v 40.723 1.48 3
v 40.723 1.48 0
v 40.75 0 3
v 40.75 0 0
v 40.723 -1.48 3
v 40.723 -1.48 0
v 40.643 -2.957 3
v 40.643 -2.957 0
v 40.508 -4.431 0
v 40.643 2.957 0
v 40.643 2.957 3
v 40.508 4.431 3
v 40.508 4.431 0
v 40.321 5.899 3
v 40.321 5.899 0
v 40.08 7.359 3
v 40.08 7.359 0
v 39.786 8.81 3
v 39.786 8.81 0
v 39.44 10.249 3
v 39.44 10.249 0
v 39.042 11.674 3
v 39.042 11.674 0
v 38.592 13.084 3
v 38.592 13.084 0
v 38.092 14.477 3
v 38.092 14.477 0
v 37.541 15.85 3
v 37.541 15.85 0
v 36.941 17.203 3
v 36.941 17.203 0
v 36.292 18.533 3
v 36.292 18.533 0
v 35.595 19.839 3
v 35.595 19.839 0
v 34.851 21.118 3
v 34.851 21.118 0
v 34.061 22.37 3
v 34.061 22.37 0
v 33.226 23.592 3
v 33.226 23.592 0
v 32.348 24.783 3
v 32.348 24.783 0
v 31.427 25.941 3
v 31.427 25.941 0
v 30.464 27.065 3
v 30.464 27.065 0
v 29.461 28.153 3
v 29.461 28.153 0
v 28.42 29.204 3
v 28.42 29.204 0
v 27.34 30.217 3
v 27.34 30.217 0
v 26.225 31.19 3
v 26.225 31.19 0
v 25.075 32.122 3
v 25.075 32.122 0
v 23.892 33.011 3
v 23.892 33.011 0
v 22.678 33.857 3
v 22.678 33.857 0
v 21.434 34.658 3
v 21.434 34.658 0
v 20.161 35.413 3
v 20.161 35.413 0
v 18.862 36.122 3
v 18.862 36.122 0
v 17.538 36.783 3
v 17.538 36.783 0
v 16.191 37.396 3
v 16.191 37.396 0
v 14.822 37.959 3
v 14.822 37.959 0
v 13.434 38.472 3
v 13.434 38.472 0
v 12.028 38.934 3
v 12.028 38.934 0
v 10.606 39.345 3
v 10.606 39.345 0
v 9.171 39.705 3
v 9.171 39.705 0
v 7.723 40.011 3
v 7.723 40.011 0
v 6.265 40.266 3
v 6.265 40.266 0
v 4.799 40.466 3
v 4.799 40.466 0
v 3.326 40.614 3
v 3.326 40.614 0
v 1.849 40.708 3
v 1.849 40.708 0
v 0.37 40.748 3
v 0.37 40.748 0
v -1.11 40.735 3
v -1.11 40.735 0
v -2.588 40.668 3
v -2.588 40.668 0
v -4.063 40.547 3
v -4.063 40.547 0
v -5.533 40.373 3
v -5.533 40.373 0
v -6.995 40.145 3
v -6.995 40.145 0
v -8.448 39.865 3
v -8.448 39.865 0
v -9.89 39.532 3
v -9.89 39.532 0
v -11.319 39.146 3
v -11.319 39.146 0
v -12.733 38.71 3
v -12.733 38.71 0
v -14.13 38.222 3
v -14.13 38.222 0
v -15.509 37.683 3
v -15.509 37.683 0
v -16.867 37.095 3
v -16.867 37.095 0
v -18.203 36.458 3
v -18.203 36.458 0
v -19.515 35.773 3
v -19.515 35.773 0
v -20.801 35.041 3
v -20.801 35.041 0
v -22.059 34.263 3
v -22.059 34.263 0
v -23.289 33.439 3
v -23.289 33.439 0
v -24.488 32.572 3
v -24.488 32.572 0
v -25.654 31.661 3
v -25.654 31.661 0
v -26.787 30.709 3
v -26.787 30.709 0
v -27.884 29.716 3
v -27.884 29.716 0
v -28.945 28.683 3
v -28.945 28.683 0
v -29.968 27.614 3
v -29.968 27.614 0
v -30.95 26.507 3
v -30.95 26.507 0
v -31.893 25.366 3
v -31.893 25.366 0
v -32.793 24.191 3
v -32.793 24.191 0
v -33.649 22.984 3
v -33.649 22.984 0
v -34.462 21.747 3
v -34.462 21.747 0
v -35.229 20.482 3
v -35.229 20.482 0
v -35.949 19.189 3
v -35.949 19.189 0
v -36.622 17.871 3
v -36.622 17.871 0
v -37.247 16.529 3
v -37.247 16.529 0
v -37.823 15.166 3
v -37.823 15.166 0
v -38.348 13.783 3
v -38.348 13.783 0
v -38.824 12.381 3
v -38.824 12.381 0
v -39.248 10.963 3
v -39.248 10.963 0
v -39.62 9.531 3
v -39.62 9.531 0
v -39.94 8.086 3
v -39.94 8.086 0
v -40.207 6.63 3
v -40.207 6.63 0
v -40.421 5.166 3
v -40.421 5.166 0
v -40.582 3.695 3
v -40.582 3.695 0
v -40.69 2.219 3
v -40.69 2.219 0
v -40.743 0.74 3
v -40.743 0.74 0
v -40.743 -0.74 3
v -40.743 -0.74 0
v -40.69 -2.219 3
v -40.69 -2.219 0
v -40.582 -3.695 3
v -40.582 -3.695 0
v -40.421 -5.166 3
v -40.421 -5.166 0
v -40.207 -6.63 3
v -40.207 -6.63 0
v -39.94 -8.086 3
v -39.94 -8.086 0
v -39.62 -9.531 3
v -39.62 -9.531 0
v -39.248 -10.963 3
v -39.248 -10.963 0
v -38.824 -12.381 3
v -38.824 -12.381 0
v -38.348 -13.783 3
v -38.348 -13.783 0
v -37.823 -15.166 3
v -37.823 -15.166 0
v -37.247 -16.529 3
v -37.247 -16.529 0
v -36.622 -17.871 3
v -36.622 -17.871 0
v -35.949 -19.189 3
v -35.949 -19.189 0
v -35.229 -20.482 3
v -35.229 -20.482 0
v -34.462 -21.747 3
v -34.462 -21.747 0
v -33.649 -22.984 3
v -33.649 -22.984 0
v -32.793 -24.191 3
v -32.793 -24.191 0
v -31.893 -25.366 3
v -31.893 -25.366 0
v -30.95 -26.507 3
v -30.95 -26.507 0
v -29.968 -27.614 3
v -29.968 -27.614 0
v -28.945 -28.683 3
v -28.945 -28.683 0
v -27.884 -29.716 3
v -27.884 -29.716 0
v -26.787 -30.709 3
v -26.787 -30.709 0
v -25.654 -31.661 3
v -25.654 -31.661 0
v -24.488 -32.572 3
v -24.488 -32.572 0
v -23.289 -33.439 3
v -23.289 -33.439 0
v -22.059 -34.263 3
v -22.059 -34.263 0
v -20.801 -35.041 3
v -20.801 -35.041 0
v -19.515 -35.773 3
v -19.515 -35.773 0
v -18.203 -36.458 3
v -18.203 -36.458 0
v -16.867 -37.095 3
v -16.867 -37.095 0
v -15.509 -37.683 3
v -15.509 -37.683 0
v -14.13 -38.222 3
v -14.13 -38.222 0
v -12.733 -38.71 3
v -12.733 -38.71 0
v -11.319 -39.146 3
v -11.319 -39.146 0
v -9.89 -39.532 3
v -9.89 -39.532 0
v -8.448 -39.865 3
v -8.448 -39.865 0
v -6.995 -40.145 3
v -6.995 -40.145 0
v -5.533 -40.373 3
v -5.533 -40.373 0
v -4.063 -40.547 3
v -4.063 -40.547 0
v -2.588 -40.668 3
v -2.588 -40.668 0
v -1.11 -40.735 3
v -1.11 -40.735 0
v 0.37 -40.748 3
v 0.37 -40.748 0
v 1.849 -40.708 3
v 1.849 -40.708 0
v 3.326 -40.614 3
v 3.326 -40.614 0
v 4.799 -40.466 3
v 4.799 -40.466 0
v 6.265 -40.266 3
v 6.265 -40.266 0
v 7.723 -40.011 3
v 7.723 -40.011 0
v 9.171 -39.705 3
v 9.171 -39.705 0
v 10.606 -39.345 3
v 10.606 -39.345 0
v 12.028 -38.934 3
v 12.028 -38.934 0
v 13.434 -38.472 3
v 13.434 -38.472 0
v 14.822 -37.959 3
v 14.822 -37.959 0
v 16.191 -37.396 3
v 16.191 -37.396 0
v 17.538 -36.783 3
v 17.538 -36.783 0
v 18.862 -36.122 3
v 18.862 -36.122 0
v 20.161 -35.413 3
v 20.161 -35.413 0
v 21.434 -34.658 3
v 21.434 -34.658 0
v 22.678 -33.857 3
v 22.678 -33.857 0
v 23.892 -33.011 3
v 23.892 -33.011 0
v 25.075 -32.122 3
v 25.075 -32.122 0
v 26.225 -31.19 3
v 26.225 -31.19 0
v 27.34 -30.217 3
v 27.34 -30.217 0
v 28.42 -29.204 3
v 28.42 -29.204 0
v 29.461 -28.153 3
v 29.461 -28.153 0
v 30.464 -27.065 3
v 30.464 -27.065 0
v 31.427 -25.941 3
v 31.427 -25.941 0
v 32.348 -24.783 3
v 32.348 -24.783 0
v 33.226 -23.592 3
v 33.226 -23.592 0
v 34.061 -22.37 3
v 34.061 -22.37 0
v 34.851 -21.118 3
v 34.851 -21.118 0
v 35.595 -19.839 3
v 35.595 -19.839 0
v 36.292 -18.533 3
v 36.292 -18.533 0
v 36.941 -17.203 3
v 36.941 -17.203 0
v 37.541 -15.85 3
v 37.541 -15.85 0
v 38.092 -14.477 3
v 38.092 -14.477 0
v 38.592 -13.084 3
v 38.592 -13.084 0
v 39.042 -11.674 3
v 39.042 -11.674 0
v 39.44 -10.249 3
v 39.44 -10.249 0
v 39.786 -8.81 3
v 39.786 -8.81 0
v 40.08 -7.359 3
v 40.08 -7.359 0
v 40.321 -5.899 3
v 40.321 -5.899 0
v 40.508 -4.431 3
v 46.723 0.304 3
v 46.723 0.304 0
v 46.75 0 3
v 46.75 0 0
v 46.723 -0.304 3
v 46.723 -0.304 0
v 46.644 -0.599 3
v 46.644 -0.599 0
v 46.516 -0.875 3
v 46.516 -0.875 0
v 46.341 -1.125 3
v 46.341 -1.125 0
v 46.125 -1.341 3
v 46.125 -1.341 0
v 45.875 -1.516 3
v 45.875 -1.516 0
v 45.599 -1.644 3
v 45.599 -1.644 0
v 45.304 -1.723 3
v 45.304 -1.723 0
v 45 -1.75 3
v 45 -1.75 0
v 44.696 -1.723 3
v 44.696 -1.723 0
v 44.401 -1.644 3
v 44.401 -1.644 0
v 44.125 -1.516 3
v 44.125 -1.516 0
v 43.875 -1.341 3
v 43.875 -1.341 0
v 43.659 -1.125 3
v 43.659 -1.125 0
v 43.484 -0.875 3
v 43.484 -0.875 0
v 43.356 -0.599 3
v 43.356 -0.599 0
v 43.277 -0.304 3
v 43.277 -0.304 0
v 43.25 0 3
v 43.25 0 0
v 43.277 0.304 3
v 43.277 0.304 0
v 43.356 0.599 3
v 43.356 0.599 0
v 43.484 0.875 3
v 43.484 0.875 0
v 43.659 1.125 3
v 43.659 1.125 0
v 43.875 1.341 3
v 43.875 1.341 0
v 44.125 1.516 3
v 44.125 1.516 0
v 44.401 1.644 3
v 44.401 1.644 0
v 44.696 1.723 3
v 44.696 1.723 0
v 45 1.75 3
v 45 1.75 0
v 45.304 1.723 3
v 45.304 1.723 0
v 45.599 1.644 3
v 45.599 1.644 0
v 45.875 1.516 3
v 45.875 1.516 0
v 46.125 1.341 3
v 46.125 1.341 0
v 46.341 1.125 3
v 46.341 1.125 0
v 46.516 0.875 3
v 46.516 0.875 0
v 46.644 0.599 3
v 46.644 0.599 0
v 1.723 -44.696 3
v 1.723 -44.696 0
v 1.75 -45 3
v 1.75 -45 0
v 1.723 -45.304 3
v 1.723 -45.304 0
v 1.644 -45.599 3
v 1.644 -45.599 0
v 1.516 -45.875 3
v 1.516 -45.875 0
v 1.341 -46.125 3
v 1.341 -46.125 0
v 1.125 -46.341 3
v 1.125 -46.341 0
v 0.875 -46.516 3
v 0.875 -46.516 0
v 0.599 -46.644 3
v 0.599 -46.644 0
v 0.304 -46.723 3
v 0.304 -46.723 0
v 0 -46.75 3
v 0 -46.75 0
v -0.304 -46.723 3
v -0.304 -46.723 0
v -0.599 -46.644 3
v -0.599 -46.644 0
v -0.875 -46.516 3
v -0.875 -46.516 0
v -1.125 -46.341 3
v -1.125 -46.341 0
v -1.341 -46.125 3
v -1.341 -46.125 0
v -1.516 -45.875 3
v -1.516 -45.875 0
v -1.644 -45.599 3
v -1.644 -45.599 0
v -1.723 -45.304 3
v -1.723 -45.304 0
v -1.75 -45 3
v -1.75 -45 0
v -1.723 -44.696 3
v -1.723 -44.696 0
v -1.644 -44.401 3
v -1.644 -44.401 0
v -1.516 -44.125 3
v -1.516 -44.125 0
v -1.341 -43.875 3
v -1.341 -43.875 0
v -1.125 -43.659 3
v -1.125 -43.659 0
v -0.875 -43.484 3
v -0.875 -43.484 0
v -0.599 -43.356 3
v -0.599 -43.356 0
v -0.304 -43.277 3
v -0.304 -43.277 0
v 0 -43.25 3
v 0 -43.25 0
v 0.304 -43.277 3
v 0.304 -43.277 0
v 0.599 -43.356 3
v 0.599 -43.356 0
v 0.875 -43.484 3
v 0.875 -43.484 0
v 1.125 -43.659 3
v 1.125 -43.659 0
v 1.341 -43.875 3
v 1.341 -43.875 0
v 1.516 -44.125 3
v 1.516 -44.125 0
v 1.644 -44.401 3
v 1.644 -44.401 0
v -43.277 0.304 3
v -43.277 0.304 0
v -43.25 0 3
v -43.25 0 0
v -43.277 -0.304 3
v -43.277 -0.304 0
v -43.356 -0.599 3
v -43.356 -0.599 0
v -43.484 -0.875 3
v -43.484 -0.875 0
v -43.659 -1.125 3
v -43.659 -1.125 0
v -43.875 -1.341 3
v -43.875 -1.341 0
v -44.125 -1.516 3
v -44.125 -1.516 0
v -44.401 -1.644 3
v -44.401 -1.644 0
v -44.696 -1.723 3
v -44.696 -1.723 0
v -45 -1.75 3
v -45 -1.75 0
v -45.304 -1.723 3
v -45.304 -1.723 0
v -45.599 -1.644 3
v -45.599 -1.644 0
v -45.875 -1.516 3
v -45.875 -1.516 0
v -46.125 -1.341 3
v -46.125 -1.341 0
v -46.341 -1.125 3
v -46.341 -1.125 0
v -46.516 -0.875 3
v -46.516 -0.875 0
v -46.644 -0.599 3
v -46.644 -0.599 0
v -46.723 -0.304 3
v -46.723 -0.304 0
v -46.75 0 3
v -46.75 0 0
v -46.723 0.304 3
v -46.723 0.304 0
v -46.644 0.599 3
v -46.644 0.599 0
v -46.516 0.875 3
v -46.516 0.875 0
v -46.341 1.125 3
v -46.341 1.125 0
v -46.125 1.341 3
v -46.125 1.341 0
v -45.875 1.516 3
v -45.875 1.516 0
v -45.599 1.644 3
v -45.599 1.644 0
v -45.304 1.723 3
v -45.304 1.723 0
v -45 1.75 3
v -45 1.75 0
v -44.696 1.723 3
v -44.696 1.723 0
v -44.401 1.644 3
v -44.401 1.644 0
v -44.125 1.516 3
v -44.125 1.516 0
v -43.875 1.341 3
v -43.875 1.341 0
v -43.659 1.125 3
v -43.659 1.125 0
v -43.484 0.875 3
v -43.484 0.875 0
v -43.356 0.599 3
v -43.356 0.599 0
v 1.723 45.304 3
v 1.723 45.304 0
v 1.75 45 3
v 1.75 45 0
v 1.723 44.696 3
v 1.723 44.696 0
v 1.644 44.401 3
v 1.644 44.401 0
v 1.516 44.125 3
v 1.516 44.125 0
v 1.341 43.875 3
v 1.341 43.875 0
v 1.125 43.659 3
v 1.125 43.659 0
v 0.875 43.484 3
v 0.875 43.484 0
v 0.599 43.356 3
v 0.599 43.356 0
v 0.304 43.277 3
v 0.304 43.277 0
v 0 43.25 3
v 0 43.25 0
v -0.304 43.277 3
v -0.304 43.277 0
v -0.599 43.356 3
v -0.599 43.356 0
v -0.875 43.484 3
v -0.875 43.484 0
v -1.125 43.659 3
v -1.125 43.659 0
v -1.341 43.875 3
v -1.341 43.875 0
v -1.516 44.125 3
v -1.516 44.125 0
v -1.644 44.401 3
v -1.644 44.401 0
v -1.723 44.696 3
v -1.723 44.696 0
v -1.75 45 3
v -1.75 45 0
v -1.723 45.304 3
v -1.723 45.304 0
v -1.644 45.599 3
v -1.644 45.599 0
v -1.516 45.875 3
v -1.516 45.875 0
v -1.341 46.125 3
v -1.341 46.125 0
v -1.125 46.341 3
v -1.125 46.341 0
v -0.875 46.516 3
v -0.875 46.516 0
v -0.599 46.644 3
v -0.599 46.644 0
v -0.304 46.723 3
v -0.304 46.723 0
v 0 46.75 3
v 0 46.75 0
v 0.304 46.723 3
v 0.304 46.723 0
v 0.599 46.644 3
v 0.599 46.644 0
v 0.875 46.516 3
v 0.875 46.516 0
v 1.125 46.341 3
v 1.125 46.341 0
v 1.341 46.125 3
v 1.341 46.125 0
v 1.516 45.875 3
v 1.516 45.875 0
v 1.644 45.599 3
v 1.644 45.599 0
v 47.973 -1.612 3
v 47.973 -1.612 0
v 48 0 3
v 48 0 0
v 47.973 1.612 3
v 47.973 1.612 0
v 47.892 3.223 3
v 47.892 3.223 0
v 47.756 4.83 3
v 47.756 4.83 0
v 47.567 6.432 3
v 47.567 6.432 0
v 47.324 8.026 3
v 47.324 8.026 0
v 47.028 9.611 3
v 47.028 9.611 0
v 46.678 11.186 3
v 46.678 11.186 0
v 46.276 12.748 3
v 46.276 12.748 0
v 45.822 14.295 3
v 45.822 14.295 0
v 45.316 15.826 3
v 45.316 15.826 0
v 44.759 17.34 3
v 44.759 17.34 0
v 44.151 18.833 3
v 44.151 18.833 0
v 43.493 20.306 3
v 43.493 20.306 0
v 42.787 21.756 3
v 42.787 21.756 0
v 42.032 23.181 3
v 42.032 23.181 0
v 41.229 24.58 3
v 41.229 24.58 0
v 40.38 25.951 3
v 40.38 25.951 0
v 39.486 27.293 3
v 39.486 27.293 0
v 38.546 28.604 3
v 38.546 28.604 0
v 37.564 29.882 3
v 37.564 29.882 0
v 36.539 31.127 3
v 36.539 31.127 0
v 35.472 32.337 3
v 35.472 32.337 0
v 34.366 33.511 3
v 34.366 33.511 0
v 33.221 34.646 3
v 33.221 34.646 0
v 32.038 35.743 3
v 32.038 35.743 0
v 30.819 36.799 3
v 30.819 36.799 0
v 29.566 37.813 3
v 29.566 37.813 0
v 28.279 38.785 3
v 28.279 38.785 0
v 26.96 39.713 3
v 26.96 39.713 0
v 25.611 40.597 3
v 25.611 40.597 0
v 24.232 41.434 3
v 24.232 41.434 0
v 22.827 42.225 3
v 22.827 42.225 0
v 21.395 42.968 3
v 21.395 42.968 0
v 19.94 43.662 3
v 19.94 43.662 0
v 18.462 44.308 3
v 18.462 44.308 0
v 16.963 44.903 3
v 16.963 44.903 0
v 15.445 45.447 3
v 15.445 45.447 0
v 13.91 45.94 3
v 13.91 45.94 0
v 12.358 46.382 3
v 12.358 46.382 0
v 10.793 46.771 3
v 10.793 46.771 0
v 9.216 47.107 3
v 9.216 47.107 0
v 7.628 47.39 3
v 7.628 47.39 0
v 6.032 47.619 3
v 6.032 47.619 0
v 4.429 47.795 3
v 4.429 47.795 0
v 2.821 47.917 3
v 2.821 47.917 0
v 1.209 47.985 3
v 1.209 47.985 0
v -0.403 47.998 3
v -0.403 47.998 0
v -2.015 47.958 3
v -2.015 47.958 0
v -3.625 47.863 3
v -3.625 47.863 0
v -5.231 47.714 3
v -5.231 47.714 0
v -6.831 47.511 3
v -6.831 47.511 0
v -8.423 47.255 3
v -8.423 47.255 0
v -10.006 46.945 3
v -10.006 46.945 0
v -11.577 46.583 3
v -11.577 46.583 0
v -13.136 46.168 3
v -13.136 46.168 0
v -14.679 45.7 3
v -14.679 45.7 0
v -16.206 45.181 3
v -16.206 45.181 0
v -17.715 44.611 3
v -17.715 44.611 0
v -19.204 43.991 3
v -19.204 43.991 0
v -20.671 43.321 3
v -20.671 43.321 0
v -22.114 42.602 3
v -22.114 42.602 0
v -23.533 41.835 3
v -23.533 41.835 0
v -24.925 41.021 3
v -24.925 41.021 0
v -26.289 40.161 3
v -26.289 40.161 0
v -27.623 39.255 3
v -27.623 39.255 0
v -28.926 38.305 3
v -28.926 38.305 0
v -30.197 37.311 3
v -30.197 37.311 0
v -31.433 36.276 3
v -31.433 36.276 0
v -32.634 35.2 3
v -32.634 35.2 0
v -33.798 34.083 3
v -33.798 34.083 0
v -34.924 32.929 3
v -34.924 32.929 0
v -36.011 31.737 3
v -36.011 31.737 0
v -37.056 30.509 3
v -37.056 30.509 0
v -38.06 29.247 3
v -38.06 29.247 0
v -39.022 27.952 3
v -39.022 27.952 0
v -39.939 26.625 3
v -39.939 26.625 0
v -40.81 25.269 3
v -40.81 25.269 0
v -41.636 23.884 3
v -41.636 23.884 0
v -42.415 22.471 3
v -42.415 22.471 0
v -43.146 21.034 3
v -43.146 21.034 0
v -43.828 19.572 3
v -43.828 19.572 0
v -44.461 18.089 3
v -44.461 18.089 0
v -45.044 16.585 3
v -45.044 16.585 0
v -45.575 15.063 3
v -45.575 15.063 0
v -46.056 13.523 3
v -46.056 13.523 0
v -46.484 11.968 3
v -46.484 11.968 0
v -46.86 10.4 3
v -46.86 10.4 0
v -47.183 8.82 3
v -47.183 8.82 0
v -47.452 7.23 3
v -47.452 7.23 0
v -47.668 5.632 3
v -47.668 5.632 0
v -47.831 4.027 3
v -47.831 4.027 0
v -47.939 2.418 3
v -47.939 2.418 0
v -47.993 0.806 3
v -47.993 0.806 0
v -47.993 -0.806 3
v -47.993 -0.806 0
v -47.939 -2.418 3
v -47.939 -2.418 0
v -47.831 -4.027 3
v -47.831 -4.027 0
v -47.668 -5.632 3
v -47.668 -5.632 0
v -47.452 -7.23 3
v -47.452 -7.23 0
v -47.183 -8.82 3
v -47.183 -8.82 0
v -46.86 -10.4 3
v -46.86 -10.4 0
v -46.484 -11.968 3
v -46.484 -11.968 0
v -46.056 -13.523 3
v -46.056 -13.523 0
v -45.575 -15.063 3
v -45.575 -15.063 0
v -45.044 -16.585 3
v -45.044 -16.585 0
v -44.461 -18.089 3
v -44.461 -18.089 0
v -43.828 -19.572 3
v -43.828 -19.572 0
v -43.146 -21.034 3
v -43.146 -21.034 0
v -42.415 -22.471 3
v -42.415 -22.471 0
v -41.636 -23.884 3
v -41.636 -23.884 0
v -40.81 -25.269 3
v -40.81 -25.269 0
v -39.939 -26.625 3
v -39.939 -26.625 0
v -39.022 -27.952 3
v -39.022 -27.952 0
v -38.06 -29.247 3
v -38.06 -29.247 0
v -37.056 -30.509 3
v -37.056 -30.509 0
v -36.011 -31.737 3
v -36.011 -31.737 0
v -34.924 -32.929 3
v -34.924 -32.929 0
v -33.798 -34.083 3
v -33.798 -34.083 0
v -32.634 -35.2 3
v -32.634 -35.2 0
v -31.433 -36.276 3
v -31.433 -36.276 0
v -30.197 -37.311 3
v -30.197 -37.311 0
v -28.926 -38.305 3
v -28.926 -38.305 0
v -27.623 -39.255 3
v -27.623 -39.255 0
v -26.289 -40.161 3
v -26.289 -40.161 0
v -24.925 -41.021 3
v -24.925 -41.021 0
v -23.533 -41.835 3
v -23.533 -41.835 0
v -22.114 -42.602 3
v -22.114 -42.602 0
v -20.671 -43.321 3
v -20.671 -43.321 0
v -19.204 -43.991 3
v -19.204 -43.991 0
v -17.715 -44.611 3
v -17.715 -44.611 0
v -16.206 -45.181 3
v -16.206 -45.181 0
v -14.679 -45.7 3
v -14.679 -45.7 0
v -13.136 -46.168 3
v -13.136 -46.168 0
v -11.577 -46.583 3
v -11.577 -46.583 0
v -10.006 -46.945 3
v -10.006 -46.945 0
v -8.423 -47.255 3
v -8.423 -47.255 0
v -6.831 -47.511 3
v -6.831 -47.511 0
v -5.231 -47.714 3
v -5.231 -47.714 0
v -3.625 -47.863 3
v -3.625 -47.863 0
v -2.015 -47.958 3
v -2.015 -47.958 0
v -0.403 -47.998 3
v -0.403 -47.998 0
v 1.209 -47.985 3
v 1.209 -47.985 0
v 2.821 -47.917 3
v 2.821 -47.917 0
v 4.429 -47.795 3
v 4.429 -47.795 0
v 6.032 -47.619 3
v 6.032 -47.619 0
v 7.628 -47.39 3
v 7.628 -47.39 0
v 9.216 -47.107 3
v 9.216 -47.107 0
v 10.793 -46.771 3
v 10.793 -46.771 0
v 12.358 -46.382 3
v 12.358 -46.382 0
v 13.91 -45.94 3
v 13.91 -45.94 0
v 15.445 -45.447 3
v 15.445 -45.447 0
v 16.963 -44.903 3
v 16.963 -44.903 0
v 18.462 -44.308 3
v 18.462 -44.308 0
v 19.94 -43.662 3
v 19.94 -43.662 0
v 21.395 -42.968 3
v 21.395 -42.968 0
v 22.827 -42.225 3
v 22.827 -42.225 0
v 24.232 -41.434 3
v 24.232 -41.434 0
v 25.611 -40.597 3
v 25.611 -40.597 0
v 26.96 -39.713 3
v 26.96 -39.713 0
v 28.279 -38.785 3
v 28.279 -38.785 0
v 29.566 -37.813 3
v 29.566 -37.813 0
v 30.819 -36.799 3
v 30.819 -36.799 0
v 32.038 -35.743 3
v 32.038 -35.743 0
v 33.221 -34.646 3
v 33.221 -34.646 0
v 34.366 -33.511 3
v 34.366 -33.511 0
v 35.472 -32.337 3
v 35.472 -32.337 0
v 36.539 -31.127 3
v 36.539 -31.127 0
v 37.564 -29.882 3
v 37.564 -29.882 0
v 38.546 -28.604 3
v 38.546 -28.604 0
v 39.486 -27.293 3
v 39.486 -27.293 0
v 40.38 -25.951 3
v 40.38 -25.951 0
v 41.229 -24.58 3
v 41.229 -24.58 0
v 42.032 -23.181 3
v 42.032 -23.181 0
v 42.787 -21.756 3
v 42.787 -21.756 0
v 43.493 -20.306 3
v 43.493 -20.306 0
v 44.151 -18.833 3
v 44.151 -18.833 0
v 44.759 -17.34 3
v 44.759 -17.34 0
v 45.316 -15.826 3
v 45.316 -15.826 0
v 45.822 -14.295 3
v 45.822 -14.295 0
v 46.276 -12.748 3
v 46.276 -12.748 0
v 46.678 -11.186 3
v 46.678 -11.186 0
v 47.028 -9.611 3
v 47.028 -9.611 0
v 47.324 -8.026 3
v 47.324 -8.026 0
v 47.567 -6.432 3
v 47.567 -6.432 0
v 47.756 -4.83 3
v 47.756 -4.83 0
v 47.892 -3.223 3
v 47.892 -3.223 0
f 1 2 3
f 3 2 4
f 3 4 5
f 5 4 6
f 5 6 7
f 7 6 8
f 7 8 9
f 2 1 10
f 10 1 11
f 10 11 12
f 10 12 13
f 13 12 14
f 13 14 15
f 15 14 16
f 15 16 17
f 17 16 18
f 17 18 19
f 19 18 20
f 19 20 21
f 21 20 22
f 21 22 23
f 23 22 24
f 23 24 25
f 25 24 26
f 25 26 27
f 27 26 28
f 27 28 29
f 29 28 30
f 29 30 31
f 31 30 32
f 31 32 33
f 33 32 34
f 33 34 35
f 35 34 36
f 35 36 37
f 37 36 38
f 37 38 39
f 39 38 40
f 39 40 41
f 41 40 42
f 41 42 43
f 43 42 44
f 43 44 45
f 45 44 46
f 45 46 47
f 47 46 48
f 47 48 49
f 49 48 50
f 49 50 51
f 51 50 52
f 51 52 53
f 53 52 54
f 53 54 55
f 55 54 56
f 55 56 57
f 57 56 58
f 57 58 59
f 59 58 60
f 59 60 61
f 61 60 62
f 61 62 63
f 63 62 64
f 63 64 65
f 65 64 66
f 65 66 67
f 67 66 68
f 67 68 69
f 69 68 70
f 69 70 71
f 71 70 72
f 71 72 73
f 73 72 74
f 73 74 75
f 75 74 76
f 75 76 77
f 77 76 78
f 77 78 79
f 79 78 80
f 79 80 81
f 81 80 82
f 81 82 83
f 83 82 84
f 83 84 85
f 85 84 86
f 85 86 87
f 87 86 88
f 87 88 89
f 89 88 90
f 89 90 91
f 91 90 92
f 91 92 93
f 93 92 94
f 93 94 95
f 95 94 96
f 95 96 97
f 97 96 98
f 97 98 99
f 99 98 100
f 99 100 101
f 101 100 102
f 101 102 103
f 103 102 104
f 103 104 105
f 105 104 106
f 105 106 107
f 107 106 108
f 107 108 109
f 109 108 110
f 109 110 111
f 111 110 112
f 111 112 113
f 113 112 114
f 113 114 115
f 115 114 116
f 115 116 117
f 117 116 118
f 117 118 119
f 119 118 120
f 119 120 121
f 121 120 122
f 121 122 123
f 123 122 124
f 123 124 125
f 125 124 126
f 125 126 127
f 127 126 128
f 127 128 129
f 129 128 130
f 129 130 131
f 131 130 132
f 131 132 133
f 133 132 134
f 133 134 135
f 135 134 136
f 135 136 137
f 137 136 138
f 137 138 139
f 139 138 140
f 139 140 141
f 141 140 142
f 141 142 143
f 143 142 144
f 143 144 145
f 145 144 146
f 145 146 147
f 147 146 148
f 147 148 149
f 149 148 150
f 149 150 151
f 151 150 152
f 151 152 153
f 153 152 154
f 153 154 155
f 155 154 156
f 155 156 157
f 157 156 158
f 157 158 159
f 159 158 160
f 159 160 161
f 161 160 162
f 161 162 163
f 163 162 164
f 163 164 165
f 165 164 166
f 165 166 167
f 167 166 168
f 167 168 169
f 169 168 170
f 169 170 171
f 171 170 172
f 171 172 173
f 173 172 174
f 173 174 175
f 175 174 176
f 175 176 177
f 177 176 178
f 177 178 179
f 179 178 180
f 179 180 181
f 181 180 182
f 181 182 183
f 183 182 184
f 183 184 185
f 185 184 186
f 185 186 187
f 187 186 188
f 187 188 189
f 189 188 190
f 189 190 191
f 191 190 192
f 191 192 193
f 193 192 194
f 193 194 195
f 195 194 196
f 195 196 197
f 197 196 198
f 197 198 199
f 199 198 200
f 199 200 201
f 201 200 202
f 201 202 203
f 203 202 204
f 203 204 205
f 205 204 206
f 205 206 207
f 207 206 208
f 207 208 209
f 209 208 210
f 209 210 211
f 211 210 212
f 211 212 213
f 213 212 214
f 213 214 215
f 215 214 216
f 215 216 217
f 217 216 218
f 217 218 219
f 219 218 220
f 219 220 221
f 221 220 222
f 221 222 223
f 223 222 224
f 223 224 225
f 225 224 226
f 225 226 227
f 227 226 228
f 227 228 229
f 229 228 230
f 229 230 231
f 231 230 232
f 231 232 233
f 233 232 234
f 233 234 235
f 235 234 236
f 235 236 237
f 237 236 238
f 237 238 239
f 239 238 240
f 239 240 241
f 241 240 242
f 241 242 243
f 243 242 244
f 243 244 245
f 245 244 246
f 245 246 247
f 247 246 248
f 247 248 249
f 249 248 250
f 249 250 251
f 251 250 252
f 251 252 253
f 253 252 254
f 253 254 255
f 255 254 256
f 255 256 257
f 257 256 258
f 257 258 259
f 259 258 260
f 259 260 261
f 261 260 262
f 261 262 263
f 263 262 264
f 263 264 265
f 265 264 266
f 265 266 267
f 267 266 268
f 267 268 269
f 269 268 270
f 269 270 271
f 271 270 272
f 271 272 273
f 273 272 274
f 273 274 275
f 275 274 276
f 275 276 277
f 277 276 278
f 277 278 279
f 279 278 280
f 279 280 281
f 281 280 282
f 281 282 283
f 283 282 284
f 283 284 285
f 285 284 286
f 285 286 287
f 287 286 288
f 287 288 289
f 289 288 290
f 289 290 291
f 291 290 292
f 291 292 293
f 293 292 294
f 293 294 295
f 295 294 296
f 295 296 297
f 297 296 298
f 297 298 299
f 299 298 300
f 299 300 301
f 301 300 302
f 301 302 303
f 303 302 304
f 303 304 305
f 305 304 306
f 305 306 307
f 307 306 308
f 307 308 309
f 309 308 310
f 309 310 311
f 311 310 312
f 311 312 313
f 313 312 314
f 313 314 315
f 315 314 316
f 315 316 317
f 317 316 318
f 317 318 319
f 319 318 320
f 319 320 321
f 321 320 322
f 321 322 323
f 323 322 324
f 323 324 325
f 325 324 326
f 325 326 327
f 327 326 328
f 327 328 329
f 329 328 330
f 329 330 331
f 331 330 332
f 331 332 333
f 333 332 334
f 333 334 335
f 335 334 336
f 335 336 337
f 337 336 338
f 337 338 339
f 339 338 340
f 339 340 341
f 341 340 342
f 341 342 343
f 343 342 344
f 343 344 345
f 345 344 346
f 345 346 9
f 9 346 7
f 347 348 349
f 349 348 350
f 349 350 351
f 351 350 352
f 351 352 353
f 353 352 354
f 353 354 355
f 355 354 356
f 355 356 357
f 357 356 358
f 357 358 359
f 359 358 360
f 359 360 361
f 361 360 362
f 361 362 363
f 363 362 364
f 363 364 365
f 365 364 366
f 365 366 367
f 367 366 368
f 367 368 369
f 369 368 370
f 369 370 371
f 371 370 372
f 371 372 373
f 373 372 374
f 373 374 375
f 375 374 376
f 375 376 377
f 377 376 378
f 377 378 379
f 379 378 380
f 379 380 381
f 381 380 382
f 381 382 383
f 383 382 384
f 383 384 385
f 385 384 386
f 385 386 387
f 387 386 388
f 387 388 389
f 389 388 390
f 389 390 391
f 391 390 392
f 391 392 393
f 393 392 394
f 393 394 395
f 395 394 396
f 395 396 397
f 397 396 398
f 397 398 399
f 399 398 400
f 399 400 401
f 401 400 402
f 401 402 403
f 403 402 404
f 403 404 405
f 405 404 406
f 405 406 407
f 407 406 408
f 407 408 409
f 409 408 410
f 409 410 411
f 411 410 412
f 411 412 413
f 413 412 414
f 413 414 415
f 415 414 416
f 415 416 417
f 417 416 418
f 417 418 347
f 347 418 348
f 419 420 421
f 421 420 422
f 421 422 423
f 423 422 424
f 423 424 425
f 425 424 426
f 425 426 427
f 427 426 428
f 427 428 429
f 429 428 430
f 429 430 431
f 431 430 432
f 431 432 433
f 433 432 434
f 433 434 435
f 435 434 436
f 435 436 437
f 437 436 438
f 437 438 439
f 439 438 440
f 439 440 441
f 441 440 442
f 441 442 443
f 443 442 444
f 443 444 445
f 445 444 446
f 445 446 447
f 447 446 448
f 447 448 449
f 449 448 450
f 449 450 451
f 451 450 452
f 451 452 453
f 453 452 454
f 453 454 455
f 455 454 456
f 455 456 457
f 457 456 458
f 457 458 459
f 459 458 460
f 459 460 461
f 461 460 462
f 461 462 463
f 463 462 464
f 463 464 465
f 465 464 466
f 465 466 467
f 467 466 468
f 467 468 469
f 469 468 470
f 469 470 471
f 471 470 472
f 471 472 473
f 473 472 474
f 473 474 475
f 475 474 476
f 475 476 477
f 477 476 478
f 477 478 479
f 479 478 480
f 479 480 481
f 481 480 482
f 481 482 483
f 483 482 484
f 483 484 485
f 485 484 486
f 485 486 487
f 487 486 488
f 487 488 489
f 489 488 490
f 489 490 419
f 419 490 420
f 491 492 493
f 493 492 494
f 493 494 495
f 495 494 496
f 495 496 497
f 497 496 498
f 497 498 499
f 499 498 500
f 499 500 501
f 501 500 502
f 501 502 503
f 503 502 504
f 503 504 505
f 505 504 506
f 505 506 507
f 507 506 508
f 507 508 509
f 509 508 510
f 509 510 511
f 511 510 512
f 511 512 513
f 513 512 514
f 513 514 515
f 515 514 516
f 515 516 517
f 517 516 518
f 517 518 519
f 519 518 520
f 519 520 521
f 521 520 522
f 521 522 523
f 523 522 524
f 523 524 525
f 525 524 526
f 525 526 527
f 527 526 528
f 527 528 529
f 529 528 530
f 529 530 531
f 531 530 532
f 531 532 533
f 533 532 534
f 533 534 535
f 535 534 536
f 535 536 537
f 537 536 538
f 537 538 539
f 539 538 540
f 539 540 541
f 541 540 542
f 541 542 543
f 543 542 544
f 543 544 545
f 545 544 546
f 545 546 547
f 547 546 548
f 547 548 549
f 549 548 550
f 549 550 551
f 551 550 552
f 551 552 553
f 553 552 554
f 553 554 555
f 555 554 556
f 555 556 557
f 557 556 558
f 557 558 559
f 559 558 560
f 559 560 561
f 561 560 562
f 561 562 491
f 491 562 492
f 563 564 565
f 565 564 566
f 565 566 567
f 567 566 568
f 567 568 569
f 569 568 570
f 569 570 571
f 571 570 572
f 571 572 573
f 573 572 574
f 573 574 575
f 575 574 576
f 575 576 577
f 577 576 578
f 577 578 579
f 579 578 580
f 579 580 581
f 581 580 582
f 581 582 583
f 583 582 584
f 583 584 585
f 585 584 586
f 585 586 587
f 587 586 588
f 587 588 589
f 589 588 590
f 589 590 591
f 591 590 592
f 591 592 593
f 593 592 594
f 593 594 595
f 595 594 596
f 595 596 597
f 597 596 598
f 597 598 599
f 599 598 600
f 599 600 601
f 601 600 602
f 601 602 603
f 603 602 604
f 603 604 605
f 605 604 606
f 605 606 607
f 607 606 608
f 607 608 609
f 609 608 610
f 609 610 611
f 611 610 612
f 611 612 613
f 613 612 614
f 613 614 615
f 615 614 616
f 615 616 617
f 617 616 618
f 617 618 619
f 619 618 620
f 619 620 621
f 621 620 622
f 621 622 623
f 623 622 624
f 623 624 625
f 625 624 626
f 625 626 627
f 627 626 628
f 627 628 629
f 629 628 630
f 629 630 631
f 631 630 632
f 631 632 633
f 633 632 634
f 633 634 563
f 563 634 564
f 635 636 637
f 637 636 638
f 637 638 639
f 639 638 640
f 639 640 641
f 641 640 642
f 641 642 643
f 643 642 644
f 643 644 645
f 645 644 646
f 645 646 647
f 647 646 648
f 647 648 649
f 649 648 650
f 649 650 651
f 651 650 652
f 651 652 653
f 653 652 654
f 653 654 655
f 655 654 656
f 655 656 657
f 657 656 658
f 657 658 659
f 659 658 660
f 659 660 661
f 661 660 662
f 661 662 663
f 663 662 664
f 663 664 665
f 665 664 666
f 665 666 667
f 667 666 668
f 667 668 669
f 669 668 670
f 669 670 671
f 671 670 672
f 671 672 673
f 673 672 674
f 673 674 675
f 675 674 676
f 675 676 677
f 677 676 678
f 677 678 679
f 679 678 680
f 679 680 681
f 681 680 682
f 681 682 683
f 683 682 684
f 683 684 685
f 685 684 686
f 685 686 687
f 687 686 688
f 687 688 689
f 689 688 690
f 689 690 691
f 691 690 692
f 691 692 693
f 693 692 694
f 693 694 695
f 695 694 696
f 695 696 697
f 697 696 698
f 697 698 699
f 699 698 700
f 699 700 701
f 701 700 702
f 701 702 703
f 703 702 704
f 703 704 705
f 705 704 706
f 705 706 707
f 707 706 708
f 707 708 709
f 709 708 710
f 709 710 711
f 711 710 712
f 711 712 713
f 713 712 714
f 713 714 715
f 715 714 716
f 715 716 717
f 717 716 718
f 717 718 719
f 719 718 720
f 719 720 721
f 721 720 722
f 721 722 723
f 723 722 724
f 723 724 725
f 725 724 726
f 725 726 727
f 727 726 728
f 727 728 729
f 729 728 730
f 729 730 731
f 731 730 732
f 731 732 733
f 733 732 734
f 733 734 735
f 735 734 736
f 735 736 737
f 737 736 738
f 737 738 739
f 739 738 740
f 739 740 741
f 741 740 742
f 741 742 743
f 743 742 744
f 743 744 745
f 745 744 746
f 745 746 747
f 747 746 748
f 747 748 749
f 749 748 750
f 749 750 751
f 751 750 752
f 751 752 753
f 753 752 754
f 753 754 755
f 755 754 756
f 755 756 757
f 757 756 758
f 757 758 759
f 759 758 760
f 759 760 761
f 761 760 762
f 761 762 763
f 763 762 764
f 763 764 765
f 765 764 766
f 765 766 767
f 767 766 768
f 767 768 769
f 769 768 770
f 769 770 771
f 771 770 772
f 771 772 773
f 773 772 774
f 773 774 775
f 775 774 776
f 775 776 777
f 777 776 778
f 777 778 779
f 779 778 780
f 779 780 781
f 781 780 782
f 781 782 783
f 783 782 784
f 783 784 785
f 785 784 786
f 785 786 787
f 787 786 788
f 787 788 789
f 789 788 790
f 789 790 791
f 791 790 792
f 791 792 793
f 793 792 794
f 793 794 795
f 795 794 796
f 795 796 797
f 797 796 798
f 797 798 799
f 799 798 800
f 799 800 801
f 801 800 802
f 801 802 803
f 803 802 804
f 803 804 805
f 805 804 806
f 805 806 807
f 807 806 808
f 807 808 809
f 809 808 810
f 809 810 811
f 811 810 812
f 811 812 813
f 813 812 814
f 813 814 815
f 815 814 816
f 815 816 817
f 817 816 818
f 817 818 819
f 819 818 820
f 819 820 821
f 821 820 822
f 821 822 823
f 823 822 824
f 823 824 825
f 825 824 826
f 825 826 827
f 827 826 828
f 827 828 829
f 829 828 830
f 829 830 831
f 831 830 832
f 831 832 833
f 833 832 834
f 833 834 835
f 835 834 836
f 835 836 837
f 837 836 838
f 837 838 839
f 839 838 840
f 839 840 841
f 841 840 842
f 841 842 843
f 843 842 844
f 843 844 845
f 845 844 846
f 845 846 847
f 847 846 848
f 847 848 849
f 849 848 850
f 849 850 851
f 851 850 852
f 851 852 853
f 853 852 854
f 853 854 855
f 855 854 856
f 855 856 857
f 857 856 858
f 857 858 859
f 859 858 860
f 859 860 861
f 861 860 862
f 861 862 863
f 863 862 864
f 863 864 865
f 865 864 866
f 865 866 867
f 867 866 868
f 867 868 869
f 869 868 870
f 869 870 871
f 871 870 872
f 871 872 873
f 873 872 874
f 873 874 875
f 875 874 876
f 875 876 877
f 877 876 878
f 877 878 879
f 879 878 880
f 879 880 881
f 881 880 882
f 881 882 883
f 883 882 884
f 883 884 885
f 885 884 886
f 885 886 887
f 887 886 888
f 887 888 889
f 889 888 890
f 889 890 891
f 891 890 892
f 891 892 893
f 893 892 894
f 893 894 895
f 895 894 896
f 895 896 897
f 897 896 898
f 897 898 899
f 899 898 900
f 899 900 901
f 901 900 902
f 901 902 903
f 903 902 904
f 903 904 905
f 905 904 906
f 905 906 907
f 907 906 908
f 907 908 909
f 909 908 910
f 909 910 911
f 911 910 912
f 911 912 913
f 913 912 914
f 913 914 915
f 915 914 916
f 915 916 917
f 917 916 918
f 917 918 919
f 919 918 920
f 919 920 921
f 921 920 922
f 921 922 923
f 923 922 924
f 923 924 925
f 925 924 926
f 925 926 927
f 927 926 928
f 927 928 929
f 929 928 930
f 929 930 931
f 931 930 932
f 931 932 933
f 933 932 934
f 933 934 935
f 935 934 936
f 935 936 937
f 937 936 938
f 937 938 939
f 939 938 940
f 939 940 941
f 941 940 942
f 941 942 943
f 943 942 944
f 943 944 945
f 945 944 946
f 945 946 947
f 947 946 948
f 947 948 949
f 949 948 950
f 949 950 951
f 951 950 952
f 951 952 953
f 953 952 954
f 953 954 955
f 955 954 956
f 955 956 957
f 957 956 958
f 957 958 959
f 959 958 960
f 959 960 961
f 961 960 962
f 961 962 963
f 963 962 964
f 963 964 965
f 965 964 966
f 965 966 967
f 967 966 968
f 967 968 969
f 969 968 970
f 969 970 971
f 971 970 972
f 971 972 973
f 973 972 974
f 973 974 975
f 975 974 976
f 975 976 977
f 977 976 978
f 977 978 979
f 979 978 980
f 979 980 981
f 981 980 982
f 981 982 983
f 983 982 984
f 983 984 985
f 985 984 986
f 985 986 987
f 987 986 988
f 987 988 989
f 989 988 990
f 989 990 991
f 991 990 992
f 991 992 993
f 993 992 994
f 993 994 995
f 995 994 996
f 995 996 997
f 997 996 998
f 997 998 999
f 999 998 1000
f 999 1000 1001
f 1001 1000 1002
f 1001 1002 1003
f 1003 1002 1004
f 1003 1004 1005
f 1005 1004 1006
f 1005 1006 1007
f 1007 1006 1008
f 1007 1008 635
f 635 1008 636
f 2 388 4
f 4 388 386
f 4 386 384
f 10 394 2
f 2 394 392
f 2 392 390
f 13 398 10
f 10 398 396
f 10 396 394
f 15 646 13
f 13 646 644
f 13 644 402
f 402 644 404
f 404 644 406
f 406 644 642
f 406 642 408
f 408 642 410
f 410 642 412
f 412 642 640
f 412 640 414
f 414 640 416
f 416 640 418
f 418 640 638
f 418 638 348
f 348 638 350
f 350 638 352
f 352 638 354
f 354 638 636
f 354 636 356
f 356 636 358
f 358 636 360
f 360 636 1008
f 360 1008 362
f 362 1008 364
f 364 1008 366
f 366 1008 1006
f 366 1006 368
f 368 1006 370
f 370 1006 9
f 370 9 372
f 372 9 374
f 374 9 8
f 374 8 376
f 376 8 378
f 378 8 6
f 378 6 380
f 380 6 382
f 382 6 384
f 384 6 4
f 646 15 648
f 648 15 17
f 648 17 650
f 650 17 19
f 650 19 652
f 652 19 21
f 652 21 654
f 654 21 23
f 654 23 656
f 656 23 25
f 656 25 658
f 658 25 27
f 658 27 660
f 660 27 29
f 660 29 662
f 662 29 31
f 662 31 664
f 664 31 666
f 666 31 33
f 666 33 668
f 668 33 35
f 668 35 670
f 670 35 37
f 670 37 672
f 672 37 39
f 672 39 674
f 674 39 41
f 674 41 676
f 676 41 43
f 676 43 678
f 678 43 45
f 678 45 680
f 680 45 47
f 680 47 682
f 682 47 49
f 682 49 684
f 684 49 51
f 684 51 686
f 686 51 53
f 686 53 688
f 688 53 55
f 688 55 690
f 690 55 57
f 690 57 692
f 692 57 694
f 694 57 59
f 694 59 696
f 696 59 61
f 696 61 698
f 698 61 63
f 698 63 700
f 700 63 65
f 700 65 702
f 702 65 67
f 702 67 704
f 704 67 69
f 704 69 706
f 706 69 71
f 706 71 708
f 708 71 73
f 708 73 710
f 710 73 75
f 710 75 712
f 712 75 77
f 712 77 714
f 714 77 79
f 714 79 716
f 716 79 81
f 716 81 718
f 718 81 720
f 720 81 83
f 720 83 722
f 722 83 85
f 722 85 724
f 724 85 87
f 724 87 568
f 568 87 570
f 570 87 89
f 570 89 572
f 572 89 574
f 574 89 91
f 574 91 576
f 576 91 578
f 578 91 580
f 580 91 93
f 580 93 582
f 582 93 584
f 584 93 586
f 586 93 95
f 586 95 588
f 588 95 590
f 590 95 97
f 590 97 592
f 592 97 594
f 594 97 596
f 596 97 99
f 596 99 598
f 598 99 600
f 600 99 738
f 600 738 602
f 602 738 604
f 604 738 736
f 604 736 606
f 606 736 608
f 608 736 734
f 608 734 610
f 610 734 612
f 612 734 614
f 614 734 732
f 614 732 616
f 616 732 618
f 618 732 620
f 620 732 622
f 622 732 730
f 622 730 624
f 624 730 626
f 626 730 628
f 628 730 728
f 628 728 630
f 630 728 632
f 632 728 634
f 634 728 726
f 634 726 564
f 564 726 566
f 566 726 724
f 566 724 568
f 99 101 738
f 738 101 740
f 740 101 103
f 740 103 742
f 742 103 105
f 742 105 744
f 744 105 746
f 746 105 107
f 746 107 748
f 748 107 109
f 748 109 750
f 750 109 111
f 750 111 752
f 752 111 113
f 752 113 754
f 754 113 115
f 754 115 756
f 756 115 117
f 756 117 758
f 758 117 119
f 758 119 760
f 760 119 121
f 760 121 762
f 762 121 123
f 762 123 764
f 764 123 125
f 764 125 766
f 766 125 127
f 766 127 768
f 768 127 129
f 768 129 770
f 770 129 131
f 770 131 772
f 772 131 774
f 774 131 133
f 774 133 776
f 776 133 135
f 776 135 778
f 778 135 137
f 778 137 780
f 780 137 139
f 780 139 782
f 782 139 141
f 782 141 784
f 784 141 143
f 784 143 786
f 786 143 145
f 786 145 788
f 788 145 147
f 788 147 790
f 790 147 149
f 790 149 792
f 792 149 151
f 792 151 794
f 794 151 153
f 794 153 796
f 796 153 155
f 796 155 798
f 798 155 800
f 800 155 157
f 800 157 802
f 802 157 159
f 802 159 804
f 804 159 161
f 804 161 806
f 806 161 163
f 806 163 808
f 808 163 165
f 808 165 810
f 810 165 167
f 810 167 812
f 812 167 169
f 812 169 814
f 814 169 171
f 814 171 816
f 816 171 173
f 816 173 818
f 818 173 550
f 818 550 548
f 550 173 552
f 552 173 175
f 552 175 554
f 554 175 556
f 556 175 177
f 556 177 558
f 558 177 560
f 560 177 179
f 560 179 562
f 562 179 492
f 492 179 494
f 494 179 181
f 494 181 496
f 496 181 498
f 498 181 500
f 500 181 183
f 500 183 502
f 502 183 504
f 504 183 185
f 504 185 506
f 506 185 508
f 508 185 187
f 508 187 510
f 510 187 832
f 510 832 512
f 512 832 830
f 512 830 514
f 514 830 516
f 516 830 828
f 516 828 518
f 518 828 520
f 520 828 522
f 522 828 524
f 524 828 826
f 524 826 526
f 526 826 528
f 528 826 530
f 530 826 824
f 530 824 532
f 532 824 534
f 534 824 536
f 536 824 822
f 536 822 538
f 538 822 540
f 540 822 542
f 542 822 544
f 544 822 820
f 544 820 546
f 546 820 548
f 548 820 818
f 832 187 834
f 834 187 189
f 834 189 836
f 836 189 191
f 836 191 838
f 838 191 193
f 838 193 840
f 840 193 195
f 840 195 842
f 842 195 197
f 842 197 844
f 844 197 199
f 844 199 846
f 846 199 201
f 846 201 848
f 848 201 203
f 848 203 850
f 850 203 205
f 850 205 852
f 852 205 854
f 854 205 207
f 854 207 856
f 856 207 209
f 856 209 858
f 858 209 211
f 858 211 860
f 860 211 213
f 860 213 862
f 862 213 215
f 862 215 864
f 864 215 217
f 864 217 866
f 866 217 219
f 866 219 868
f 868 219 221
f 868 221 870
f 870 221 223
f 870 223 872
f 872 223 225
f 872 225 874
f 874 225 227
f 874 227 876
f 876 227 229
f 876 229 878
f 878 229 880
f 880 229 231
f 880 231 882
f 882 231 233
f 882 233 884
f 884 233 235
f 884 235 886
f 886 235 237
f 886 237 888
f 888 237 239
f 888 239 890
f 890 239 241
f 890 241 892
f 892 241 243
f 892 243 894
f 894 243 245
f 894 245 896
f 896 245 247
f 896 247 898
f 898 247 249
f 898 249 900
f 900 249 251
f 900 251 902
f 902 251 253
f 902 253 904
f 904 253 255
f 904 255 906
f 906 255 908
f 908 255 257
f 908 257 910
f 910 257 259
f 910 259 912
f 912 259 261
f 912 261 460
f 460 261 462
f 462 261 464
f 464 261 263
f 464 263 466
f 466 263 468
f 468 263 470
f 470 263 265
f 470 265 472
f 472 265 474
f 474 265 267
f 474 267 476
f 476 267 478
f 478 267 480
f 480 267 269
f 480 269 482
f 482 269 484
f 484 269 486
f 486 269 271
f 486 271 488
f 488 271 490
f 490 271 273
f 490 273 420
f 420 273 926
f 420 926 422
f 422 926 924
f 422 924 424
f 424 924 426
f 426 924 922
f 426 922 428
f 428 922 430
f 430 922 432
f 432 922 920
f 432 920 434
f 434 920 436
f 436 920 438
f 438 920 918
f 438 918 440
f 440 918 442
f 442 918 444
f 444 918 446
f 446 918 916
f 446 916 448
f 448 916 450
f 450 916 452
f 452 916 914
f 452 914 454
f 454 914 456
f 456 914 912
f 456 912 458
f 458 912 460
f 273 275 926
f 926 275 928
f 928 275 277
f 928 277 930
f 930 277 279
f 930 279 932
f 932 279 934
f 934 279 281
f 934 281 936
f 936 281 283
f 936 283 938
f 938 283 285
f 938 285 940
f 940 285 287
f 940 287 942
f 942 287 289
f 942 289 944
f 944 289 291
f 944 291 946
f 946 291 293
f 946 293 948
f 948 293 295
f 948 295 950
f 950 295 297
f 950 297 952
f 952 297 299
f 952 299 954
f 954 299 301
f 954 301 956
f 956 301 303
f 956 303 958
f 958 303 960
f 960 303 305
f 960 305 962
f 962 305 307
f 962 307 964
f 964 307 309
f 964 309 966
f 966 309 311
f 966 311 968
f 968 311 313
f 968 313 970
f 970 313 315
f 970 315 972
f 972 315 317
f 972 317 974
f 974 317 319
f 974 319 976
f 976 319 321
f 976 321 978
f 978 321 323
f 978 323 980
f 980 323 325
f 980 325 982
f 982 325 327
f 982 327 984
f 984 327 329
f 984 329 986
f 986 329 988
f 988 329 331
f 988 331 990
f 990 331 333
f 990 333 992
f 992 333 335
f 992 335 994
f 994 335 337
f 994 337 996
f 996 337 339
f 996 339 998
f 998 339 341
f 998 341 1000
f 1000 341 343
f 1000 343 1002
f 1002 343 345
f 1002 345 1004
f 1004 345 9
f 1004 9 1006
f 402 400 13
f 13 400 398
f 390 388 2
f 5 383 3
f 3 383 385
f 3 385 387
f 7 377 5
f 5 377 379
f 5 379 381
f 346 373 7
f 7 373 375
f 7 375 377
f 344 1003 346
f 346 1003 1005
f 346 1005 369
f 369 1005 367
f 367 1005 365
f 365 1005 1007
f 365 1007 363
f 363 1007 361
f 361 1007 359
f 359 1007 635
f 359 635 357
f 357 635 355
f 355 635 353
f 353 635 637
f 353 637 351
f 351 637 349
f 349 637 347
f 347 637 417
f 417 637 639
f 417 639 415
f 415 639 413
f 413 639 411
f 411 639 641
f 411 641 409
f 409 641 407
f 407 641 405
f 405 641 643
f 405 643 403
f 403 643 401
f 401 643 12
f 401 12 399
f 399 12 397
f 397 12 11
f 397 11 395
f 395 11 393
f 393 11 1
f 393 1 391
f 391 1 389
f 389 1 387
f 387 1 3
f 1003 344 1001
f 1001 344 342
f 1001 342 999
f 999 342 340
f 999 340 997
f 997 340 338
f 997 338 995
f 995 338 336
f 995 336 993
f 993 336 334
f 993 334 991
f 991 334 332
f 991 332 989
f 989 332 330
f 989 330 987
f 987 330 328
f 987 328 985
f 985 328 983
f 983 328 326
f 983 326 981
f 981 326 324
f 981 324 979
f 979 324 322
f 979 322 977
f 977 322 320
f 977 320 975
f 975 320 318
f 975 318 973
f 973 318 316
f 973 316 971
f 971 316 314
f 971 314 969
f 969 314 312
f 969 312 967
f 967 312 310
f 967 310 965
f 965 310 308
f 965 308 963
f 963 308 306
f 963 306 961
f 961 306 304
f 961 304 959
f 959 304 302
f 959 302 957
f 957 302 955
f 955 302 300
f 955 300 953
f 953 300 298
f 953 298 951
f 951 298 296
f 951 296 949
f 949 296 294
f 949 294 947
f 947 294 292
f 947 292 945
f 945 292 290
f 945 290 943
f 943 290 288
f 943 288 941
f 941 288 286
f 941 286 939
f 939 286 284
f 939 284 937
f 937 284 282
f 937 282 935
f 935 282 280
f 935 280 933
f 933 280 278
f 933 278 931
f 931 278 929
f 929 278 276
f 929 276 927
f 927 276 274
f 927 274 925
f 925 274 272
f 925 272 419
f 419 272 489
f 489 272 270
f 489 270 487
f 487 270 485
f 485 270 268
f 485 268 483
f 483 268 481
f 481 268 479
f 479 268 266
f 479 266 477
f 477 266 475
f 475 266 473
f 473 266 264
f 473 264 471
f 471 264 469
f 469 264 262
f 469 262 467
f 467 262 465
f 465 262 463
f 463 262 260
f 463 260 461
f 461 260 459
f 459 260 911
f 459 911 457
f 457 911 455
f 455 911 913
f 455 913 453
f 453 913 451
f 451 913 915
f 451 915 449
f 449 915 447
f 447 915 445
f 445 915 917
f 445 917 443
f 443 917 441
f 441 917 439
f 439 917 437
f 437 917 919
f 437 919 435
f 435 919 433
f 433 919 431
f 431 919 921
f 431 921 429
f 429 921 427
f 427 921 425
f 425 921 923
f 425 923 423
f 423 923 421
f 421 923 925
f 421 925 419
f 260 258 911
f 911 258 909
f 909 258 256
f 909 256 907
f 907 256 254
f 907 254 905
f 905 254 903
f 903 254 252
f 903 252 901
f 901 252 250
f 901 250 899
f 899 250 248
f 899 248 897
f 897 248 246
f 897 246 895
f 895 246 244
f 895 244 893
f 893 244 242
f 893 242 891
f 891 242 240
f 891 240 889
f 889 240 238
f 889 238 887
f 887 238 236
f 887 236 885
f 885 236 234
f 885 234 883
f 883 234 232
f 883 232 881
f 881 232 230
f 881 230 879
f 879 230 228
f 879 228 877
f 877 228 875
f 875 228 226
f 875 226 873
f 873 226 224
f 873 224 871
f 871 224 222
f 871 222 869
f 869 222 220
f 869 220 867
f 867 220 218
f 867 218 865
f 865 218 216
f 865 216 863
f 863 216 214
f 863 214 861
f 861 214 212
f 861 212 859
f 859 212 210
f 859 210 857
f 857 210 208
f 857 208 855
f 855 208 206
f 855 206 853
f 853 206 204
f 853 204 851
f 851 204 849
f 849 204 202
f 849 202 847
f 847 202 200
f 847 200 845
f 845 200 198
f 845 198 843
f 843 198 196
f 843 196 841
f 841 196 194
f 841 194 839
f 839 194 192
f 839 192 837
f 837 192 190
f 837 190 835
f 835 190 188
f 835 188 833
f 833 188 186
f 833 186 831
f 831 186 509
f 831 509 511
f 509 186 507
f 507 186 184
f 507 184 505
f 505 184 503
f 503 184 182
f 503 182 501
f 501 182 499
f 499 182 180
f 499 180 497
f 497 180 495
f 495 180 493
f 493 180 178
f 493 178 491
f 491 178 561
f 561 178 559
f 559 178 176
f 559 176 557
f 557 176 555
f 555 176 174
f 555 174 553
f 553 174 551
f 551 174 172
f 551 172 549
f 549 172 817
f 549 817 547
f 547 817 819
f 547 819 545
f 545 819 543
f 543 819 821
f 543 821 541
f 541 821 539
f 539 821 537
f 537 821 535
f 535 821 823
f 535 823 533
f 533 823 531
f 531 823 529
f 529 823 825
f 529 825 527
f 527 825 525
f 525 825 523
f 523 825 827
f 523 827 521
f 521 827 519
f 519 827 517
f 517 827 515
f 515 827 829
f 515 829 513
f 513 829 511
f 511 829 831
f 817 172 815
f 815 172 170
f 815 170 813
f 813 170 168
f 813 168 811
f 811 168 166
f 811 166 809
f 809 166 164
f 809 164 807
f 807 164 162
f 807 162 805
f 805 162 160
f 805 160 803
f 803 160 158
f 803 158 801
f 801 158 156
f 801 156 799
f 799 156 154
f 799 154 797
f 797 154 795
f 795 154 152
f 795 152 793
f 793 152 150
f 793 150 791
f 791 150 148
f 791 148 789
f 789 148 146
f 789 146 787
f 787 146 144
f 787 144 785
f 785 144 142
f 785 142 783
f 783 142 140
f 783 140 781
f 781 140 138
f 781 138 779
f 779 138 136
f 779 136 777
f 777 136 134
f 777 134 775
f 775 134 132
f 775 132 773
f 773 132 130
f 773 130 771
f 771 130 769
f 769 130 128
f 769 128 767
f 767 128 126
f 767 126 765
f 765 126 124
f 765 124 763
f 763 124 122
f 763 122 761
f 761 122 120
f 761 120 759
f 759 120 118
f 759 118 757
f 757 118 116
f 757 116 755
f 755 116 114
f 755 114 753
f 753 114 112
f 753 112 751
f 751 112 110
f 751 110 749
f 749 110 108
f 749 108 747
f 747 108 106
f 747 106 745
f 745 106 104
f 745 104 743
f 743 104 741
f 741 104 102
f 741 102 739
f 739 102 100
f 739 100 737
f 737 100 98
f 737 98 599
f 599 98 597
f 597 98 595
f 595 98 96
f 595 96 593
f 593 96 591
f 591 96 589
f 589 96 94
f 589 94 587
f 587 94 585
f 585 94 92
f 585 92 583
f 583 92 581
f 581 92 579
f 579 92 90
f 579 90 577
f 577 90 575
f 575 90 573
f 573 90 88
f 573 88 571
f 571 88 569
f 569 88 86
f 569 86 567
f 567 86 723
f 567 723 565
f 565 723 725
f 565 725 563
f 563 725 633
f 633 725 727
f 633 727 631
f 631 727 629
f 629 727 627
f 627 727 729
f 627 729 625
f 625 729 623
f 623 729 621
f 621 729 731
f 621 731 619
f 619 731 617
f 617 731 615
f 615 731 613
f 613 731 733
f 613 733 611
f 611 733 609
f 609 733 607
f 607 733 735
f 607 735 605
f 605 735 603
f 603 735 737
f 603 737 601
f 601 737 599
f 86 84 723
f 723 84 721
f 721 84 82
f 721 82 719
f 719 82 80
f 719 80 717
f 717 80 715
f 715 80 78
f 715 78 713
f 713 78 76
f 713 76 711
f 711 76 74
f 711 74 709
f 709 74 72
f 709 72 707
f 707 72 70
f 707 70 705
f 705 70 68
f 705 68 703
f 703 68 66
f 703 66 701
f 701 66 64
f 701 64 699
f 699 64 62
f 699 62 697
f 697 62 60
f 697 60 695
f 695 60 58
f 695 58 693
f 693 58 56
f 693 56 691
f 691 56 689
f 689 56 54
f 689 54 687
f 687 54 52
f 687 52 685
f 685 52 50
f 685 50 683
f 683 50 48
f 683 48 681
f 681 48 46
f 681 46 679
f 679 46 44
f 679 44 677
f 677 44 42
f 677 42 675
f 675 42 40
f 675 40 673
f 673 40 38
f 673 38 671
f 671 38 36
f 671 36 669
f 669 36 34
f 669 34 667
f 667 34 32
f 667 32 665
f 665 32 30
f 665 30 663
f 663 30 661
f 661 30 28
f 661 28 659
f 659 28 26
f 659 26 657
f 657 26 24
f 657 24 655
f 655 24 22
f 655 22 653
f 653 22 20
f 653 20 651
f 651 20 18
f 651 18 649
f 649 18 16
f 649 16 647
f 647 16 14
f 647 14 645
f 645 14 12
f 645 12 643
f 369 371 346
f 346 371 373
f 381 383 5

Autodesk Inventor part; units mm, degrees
ref_plane "YZ Plane" through (0, 0, 0) normal (1, 0, 0) x (0, 1, 0)
ref_plane "XZ Plane" through (0, 0, 0) normal (0, 1, 0) x (-1, 0, 0)
ref_plane "XY Plane" through (0, 0, 0) normal (0, 0, 1) x (1, 0, 0)
sketch "Sketch1" plane through (0, 0, 0) normal (0, 0, 1) x (1, 0, 0)
  circle A0 centre (0, 0) radius 48
  circle A1 centre (0, 0) radius 40.75
  line L0 (0, 0) -> (0, 45)
  circle A2 centre (0, 45) radius 1.75
  circle A3 centre (-45, 0) radius 1.75
  circle A4 centre (0, -45) radius 1.75
  circle A5 centre (45, 0) radius 1.75
  dimension "d0" = 96
  dimension "d1" = 81.5
  dimension "d2" = 45
  dimension "d3" = 3.5
  dimension "d6" = 360
extrude "Extrusion1" add sketch "Sketch1" along normal blind 3
properties part number "arm_0_bottom_top_lock"
